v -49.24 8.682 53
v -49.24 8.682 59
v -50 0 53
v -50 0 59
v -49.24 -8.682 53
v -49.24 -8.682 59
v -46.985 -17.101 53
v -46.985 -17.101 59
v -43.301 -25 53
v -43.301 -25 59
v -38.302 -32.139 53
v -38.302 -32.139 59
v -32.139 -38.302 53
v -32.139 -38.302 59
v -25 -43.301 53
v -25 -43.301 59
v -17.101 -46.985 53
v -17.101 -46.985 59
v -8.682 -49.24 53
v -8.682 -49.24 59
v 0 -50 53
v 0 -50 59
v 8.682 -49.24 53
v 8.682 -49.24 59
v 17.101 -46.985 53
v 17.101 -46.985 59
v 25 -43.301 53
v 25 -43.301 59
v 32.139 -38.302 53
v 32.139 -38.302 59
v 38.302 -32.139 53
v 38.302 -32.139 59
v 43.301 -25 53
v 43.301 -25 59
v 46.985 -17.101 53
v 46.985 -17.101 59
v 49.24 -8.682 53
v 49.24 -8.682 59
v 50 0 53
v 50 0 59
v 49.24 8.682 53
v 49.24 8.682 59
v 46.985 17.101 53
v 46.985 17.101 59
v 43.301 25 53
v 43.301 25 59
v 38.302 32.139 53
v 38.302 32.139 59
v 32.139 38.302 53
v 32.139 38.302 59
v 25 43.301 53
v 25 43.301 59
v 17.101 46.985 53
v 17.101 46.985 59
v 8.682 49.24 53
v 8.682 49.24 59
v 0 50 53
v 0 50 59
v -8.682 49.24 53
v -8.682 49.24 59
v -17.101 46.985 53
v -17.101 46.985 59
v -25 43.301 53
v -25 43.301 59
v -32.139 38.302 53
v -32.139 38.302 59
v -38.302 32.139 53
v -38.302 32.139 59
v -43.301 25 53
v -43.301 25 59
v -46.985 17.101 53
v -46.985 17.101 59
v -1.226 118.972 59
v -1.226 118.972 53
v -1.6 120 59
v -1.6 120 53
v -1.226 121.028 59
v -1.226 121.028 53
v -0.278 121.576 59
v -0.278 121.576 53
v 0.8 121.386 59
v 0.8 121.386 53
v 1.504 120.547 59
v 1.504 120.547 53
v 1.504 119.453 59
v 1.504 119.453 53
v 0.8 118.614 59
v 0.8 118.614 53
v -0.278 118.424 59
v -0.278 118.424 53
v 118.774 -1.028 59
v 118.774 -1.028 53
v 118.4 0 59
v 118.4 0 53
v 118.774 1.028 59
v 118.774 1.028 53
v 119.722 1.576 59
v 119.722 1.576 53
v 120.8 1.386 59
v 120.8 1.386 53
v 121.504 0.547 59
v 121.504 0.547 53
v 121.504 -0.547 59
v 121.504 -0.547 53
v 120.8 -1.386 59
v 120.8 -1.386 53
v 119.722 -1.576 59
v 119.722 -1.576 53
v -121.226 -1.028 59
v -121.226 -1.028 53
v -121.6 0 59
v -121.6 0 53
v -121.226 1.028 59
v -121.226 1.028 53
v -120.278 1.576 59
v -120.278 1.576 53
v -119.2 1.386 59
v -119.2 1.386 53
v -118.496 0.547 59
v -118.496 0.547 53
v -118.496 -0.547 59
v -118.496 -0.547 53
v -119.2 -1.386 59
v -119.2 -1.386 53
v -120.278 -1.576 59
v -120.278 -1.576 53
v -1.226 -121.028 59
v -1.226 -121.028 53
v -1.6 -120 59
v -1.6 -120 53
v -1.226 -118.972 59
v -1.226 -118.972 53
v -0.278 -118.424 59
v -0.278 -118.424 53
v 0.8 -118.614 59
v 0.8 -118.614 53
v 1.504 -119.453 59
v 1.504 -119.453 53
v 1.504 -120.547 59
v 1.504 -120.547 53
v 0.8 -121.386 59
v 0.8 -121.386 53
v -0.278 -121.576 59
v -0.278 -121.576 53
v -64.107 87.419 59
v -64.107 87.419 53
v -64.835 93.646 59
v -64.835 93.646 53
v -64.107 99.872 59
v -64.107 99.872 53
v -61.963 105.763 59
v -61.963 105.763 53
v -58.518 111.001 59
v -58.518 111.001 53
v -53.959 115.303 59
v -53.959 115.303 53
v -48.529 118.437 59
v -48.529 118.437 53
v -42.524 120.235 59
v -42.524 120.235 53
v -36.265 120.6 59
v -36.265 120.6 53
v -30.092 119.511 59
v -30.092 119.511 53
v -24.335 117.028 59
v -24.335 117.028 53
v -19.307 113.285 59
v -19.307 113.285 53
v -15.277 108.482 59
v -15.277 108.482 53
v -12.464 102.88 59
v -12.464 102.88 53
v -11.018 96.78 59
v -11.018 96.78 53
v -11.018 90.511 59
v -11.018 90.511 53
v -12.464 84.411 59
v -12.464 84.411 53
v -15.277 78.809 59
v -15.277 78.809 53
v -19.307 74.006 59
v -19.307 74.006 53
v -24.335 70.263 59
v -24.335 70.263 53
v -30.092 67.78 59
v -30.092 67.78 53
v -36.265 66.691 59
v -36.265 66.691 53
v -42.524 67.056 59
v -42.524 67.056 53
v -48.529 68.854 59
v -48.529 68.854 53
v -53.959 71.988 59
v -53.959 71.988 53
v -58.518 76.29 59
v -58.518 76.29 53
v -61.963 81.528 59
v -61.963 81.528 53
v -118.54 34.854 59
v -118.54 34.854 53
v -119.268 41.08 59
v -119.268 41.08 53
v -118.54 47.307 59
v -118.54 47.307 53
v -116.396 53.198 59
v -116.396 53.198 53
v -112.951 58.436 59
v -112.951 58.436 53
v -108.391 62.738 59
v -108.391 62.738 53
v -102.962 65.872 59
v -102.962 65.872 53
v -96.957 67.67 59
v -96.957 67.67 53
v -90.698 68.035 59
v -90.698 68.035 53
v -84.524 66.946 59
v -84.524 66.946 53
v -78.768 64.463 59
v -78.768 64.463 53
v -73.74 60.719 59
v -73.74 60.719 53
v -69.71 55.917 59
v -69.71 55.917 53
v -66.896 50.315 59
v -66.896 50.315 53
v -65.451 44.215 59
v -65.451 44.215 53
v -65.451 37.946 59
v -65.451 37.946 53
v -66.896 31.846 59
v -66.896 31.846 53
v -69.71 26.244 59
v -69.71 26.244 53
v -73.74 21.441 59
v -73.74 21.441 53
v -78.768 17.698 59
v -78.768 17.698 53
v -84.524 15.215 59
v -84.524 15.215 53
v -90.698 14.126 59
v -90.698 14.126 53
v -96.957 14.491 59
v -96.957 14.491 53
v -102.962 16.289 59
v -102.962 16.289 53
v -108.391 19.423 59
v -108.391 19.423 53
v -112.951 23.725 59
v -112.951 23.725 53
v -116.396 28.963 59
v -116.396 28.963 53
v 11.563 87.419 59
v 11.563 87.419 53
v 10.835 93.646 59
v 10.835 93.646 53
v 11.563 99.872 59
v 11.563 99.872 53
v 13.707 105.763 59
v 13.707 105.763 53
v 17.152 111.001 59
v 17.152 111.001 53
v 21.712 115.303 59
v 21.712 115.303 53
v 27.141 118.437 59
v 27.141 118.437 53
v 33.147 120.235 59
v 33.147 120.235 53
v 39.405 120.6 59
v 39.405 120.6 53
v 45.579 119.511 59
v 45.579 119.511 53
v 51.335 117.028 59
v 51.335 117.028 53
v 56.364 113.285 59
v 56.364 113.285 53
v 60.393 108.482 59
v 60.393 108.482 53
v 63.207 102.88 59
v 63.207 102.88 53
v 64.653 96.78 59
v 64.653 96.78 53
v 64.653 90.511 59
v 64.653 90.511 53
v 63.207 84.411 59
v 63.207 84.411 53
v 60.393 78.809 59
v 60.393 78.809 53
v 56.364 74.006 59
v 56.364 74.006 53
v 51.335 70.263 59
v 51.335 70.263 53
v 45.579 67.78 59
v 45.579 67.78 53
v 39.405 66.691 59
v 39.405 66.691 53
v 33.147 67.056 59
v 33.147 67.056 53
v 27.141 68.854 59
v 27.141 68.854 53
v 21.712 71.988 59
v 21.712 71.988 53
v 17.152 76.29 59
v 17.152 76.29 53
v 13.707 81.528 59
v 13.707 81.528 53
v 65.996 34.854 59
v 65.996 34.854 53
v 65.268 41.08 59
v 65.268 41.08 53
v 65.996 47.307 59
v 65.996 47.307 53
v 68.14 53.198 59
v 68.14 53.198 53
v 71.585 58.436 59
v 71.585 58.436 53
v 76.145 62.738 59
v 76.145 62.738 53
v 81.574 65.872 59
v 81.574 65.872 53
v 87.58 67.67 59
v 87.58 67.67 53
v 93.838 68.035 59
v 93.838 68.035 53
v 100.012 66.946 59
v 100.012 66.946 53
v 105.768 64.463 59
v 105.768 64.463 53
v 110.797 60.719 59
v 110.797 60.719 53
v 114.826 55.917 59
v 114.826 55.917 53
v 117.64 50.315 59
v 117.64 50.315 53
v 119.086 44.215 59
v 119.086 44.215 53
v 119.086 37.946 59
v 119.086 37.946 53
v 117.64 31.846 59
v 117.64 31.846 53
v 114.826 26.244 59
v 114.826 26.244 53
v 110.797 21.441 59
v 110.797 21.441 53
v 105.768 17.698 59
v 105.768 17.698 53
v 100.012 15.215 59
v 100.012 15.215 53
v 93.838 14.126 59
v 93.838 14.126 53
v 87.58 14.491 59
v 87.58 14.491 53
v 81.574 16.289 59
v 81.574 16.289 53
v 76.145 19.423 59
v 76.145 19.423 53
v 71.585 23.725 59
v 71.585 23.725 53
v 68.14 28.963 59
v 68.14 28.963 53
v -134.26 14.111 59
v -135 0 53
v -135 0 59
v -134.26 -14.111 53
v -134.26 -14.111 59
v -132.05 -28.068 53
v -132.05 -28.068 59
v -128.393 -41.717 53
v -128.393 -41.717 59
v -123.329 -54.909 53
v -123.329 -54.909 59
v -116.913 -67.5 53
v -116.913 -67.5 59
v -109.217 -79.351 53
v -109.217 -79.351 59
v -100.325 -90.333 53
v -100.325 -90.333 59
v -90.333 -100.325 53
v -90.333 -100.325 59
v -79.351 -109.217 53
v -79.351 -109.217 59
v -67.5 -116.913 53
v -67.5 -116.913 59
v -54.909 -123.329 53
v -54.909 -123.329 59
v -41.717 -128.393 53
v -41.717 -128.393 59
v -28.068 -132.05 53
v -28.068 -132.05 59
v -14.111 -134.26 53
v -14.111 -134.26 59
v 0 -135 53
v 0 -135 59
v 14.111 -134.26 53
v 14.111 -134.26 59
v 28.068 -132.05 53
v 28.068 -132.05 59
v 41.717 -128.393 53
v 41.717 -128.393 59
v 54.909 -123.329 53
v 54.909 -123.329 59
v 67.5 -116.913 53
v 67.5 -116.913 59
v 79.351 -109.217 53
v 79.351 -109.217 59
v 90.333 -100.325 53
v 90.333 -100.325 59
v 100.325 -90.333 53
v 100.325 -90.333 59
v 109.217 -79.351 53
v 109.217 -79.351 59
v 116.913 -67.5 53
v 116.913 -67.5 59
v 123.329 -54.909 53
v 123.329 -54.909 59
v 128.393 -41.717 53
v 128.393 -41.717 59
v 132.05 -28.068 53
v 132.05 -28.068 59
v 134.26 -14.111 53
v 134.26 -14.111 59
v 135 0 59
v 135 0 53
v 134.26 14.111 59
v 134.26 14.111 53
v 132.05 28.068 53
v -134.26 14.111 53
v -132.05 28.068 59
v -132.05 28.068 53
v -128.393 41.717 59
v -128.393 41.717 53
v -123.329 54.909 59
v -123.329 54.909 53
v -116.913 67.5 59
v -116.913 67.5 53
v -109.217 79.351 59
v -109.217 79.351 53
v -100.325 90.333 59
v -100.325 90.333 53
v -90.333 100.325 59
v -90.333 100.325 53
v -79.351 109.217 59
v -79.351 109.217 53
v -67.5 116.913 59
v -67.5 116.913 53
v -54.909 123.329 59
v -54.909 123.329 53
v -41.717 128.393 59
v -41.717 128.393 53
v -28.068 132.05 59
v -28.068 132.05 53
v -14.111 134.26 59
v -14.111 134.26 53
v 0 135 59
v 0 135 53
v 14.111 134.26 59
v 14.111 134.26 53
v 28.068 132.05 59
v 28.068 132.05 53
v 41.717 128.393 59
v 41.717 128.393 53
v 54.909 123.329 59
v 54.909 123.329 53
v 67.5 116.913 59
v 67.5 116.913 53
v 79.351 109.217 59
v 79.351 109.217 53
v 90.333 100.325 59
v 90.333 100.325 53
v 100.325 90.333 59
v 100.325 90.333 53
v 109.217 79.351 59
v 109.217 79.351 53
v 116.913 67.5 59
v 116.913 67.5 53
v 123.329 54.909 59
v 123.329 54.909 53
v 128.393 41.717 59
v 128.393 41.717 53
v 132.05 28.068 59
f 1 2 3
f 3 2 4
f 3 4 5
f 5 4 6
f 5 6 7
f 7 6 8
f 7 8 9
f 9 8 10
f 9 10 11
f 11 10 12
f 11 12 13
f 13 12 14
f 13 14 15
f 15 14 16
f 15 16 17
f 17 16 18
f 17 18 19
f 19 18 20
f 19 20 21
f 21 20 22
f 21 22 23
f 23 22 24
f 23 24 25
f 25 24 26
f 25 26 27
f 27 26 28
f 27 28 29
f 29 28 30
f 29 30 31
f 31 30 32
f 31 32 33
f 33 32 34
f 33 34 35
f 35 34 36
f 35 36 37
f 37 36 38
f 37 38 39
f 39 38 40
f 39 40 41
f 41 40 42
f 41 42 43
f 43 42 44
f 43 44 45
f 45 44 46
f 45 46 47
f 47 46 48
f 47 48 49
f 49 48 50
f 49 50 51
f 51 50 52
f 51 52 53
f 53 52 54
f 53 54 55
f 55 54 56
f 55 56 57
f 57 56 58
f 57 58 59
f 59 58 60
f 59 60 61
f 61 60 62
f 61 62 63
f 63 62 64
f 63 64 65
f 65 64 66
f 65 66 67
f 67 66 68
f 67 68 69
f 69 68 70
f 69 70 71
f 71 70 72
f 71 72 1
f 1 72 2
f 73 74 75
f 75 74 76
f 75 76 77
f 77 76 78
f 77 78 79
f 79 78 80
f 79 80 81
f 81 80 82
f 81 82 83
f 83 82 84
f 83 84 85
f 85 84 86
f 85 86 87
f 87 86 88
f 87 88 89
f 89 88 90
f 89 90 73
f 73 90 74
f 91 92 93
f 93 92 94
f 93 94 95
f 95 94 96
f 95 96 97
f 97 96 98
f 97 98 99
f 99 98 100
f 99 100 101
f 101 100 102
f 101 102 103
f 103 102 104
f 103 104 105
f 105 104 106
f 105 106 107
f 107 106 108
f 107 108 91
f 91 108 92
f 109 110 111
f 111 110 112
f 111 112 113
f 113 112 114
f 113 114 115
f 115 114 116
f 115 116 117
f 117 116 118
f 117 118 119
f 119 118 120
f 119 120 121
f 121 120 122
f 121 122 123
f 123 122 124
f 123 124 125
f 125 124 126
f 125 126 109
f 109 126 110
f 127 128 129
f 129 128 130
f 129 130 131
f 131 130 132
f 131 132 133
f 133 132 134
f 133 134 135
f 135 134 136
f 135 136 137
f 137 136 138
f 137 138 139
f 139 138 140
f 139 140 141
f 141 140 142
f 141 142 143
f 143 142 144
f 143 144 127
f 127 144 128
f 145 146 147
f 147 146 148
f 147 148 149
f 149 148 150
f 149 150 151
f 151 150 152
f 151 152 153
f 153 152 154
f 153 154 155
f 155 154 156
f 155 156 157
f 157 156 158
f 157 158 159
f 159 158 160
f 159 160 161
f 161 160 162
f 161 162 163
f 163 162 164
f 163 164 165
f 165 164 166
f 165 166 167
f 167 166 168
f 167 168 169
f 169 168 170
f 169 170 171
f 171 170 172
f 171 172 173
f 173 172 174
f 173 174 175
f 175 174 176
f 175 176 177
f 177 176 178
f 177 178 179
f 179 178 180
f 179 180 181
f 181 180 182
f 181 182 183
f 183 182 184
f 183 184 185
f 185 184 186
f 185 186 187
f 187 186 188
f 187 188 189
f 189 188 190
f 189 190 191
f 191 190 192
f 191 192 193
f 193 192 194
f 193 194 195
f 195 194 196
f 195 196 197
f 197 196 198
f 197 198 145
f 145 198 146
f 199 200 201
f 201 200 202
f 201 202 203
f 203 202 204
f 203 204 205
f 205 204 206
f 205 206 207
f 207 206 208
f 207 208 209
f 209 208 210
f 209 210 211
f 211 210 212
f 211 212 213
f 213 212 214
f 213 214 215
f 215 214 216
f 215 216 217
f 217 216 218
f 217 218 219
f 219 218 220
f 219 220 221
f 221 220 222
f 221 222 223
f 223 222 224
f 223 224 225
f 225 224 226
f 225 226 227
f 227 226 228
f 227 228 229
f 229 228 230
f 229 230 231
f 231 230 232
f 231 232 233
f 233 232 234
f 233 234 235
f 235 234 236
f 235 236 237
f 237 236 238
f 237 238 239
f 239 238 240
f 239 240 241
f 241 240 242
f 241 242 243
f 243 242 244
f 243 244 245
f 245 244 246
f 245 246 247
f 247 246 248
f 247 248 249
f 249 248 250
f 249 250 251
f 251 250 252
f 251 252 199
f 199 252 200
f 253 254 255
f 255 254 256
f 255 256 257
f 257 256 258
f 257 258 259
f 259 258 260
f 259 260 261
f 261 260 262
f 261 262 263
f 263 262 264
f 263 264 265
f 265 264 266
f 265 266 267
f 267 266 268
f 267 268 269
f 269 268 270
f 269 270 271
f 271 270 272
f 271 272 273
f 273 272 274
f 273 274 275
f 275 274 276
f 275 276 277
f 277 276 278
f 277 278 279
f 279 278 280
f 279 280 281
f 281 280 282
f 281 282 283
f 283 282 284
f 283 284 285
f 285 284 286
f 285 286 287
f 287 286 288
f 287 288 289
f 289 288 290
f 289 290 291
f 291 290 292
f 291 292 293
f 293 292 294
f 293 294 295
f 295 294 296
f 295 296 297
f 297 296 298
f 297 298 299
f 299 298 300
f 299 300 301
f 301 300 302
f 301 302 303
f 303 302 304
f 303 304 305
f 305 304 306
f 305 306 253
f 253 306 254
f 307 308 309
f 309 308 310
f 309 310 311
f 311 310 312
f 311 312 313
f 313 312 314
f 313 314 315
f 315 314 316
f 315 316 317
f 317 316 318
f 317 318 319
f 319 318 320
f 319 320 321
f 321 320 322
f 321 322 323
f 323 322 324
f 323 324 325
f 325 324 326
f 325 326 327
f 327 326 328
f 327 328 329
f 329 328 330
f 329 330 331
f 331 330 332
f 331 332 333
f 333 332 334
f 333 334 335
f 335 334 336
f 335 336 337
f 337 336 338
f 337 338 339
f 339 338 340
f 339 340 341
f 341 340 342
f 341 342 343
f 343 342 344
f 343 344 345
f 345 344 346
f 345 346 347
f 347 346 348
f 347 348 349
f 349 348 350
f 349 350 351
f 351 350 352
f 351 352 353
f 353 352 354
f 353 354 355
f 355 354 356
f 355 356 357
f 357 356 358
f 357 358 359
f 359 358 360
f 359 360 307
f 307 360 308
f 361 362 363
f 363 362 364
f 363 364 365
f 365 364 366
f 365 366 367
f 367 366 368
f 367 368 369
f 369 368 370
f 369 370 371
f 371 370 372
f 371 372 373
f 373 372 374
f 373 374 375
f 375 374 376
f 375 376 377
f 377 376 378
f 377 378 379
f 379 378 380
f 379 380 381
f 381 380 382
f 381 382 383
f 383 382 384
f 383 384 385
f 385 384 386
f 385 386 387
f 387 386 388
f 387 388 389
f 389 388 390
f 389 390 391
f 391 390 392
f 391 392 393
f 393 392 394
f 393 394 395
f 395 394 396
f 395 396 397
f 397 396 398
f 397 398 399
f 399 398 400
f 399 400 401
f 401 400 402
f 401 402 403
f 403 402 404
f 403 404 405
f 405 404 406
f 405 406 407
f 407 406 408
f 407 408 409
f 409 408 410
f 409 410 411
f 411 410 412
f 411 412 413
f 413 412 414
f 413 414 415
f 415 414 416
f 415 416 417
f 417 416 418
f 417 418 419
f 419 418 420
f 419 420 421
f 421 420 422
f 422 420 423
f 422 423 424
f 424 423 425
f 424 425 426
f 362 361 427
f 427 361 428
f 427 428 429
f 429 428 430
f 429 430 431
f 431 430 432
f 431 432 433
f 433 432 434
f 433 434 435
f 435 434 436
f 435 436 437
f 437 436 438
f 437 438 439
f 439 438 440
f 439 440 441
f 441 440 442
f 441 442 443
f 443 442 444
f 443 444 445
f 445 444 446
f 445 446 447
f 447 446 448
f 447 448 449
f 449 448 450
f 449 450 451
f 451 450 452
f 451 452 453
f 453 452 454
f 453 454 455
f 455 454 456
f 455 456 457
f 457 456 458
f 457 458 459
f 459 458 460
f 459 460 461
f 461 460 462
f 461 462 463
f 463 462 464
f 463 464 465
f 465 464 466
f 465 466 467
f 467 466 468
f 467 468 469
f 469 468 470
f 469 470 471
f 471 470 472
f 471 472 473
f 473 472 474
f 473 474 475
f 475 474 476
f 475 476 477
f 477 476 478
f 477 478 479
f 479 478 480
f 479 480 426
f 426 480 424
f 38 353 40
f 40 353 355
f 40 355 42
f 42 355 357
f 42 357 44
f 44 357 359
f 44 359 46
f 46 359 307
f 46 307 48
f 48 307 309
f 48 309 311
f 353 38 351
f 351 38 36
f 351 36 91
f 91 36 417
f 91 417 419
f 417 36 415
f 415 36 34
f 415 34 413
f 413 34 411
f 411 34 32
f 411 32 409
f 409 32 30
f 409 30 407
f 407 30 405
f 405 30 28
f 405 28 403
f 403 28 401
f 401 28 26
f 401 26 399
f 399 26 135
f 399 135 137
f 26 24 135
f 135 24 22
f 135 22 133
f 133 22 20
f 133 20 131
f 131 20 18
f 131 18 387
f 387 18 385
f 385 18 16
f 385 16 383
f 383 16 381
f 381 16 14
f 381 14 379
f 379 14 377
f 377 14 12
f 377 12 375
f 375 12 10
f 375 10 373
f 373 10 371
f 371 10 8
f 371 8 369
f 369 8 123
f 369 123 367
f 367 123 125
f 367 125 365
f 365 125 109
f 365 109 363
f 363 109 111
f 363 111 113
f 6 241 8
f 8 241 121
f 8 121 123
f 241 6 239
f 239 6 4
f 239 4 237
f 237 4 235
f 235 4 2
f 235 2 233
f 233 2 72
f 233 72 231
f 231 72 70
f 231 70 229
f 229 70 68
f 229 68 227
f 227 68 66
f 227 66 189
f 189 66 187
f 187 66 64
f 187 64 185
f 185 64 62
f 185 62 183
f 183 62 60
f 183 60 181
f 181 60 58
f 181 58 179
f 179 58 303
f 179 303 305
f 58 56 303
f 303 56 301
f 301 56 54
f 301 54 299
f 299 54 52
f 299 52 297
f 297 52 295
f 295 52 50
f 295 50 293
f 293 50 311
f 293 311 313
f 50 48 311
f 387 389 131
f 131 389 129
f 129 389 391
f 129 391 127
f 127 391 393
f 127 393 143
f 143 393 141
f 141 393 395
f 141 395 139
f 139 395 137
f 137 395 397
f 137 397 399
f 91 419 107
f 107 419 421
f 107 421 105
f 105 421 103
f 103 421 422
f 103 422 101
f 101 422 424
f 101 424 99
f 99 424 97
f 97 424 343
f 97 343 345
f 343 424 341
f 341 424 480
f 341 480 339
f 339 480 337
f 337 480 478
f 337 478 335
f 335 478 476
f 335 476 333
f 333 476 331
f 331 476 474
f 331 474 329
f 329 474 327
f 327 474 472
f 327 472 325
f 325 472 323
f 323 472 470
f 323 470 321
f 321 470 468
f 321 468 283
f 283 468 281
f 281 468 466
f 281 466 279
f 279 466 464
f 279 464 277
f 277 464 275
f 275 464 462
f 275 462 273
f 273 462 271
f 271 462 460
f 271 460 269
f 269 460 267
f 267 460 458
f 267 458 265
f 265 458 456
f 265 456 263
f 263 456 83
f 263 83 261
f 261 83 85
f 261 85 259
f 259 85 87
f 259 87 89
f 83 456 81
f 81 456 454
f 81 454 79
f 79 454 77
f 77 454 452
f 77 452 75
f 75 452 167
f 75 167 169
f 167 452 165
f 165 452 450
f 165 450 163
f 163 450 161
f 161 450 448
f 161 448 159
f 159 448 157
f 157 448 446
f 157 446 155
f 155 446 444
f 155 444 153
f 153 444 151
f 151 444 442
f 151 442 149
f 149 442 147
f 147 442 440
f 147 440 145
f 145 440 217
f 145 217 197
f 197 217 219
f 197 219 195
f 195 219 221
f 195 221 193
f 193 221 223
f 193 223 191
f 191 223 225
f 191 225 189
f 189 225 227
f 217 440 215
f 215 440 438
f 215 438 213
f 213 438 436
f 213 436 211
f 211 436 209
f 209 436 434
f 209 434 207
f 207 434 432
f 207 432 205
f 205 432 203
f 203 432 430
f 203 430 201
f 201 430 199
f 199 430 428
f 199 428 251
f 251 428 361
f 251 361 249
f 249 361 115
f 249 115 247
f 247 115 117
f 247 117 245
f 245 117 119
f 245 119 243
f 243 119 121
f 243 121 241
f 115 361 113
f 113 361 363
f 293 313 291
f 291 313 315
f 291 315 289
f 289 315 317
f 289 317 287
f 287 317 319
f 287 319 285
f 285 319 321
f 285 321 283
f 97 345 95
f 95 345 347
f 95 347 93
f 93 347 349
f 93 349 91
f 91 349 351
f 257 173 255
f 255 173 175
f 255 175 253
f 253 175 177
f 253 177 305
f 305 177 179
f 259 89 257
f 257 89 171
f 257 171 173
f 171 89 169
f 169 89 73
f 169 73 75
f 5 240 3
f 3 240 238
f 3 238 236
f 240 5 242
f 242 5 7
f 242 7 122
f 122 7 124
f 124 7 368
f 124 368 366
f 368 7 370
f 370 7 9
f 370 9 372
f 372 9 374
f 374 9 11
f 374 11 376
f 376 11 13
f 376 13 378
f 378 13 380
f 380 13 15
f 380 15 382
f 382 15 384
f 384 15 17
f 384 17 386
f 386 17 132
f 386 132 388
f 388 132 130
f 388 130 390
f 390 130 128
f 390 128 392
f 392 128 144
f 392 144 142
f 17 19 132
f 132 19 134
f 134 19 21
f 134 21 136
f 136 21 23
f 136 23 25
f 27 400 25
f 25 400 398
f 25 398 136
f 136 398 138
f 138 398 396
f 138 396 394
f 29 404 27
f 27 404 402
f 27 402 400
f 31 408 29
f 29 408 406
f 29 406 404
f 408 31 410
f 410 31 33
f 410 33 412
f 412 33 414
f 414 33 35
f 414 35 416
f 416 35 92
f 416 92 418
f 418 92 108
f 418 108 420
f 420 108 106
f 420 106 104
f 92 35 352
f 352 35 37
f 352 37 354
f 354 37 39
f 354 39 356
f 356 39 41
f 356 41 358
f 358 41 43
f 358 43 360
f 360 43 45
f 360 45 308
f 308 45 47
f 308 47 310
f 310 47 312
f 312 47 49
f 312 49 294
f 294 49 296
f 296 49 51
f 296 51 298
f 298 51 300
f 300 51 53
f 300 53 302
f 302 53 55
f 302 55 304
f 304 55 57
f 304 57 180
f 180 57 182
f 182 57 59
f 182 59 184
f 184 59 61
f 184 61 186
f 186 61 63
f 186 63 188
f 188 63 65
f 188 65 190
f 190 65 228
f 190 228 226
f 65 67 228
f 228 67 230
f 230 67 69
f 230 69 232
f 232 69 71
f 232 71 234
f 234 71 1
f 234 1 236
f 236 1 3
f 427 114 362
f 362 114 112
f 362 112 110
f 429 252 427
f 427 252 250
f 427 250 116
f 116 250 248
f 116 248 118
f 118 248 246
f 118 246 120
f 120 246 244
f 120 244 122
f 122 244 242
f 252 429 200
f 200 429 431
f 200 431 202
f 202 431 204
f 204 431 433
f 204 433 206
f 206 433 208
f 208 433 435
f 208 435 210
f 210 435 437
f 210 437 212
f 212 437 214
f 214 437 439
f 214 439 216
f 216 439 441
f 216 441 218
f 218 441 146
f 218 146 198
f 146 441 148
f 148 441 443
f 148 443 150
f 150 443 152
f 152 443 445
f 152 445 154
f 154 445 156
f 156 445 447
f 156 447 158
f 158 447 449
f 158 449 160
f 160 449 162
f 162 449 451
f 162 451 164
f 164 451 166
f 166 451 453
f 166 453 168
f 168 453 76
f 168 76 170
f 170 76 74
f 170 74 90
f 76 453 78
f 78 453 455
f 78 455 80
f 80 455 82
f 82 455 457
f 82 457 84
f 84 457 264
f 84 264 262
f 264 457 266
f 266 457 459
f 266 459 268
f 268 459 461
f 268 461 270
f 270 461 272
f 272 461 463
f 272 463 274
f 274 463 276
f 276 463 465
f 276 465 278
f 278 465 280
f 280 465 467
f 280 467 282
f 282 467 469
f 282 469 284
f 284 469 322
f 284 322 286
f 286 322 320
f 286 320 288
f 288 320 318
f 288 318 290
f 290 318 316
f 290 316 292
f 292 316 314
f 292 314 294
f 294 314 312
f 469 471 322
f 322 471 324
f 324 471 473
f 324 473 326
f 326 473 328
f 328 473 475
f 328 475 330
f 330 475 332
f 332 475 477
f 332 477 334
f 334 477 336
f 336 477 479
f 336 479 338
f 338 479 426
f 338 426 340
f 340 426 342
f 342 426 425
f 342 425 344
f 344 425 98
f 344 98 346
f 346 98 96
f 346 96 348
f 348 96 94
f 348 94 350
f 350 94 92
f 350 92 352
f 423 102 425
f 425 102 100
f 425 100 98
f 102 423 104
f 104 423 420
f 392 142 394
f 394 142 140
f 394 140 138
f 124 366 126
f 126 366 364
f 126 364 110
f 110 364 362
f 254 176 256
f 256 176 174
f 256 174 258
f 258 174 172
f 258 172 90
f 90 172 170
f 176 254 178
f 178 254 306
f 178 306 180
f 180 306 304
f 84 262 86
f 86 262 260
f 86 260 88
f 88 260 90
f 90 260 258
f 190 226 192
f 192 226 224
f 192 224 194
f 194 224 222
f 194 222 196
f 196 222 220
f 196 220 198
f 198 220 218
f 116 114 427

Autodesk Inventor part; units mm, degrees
ref_plane "YZ Plane" through (0, 0, 0) normal (1, 0, 0) x (0, 1, 0)
ref_plane "XZ Plane" through (0, 0, 0) normal (0, 1, 0) x (-1, 0, 0)
ref_plane "XY Plane" through (0, 0, 0) normal (0, 0, 1) x (1, 0, 0)
ref_plane "РабПлоскость1" through (0, 120, 53) normal (0, 0, 1) x (-1, 0, 0)
sketch "Эскиз1" plane through (0, 120, 53) normal (0, 0, 1) x (-1, 0, 0)
  circle A0 centre (0, 120) radius 135 projected
  circle A1 centre (0, 0) radius 1.6 projected
  circle A2 centre (-120, 120) radius 1.6 projected
  circle A3 centre (120, 120) radius 1.6 projected
  circle A4 centre (0, 240) radius 1.6 projected
  circle A5 centre (0, 120) radius 135 projected
  circle A6 centre (37.8353, 26.3544) radius 27 projected
  circle A7 centre (92.2681, 78.9196) radius 27 projected
  circle A8 centre (-37.8353, 26.3544) radius 27 projected
  circle A9 centre (-92.2681, 78.9196) radius 27 projected
  circle A10 centre (0, 120) radius 50 projected
  circle A11 centre (48.4361, 96.1266) radius 1.7 projected
  circle A12 centre (3.5431, 66.1164) radius 1.7 projected
  circle A13 centre (-44.8931, 89.9898) radius 1.7 projected
  circle A14 centre (-48.4361, 143.8734) radius 1.7 projected
  circle A15 centre (-3.5431, 173.8836) radius 1.7 projected
  circle A16 centre (44.8931, 150.0102) radius 1.7 projected
extrude "Выдавливание1" add sketch "Эскиз1" along normal blind 6 contours A0 | A10 | A11 | A12 | A13 | A14 | A15 | A16
sketch "Эскиз2" plane through (0, 0, 59) normal (0, 0, 1) x (1, 0, 0)
  circle A0 centre (0, 0) radius 50 projected
extrude "Выдавливание2" cut sketch "Эскиз2" against normal through all
properties part number "Диск_фиксирующий" material "По умолчанию1"
